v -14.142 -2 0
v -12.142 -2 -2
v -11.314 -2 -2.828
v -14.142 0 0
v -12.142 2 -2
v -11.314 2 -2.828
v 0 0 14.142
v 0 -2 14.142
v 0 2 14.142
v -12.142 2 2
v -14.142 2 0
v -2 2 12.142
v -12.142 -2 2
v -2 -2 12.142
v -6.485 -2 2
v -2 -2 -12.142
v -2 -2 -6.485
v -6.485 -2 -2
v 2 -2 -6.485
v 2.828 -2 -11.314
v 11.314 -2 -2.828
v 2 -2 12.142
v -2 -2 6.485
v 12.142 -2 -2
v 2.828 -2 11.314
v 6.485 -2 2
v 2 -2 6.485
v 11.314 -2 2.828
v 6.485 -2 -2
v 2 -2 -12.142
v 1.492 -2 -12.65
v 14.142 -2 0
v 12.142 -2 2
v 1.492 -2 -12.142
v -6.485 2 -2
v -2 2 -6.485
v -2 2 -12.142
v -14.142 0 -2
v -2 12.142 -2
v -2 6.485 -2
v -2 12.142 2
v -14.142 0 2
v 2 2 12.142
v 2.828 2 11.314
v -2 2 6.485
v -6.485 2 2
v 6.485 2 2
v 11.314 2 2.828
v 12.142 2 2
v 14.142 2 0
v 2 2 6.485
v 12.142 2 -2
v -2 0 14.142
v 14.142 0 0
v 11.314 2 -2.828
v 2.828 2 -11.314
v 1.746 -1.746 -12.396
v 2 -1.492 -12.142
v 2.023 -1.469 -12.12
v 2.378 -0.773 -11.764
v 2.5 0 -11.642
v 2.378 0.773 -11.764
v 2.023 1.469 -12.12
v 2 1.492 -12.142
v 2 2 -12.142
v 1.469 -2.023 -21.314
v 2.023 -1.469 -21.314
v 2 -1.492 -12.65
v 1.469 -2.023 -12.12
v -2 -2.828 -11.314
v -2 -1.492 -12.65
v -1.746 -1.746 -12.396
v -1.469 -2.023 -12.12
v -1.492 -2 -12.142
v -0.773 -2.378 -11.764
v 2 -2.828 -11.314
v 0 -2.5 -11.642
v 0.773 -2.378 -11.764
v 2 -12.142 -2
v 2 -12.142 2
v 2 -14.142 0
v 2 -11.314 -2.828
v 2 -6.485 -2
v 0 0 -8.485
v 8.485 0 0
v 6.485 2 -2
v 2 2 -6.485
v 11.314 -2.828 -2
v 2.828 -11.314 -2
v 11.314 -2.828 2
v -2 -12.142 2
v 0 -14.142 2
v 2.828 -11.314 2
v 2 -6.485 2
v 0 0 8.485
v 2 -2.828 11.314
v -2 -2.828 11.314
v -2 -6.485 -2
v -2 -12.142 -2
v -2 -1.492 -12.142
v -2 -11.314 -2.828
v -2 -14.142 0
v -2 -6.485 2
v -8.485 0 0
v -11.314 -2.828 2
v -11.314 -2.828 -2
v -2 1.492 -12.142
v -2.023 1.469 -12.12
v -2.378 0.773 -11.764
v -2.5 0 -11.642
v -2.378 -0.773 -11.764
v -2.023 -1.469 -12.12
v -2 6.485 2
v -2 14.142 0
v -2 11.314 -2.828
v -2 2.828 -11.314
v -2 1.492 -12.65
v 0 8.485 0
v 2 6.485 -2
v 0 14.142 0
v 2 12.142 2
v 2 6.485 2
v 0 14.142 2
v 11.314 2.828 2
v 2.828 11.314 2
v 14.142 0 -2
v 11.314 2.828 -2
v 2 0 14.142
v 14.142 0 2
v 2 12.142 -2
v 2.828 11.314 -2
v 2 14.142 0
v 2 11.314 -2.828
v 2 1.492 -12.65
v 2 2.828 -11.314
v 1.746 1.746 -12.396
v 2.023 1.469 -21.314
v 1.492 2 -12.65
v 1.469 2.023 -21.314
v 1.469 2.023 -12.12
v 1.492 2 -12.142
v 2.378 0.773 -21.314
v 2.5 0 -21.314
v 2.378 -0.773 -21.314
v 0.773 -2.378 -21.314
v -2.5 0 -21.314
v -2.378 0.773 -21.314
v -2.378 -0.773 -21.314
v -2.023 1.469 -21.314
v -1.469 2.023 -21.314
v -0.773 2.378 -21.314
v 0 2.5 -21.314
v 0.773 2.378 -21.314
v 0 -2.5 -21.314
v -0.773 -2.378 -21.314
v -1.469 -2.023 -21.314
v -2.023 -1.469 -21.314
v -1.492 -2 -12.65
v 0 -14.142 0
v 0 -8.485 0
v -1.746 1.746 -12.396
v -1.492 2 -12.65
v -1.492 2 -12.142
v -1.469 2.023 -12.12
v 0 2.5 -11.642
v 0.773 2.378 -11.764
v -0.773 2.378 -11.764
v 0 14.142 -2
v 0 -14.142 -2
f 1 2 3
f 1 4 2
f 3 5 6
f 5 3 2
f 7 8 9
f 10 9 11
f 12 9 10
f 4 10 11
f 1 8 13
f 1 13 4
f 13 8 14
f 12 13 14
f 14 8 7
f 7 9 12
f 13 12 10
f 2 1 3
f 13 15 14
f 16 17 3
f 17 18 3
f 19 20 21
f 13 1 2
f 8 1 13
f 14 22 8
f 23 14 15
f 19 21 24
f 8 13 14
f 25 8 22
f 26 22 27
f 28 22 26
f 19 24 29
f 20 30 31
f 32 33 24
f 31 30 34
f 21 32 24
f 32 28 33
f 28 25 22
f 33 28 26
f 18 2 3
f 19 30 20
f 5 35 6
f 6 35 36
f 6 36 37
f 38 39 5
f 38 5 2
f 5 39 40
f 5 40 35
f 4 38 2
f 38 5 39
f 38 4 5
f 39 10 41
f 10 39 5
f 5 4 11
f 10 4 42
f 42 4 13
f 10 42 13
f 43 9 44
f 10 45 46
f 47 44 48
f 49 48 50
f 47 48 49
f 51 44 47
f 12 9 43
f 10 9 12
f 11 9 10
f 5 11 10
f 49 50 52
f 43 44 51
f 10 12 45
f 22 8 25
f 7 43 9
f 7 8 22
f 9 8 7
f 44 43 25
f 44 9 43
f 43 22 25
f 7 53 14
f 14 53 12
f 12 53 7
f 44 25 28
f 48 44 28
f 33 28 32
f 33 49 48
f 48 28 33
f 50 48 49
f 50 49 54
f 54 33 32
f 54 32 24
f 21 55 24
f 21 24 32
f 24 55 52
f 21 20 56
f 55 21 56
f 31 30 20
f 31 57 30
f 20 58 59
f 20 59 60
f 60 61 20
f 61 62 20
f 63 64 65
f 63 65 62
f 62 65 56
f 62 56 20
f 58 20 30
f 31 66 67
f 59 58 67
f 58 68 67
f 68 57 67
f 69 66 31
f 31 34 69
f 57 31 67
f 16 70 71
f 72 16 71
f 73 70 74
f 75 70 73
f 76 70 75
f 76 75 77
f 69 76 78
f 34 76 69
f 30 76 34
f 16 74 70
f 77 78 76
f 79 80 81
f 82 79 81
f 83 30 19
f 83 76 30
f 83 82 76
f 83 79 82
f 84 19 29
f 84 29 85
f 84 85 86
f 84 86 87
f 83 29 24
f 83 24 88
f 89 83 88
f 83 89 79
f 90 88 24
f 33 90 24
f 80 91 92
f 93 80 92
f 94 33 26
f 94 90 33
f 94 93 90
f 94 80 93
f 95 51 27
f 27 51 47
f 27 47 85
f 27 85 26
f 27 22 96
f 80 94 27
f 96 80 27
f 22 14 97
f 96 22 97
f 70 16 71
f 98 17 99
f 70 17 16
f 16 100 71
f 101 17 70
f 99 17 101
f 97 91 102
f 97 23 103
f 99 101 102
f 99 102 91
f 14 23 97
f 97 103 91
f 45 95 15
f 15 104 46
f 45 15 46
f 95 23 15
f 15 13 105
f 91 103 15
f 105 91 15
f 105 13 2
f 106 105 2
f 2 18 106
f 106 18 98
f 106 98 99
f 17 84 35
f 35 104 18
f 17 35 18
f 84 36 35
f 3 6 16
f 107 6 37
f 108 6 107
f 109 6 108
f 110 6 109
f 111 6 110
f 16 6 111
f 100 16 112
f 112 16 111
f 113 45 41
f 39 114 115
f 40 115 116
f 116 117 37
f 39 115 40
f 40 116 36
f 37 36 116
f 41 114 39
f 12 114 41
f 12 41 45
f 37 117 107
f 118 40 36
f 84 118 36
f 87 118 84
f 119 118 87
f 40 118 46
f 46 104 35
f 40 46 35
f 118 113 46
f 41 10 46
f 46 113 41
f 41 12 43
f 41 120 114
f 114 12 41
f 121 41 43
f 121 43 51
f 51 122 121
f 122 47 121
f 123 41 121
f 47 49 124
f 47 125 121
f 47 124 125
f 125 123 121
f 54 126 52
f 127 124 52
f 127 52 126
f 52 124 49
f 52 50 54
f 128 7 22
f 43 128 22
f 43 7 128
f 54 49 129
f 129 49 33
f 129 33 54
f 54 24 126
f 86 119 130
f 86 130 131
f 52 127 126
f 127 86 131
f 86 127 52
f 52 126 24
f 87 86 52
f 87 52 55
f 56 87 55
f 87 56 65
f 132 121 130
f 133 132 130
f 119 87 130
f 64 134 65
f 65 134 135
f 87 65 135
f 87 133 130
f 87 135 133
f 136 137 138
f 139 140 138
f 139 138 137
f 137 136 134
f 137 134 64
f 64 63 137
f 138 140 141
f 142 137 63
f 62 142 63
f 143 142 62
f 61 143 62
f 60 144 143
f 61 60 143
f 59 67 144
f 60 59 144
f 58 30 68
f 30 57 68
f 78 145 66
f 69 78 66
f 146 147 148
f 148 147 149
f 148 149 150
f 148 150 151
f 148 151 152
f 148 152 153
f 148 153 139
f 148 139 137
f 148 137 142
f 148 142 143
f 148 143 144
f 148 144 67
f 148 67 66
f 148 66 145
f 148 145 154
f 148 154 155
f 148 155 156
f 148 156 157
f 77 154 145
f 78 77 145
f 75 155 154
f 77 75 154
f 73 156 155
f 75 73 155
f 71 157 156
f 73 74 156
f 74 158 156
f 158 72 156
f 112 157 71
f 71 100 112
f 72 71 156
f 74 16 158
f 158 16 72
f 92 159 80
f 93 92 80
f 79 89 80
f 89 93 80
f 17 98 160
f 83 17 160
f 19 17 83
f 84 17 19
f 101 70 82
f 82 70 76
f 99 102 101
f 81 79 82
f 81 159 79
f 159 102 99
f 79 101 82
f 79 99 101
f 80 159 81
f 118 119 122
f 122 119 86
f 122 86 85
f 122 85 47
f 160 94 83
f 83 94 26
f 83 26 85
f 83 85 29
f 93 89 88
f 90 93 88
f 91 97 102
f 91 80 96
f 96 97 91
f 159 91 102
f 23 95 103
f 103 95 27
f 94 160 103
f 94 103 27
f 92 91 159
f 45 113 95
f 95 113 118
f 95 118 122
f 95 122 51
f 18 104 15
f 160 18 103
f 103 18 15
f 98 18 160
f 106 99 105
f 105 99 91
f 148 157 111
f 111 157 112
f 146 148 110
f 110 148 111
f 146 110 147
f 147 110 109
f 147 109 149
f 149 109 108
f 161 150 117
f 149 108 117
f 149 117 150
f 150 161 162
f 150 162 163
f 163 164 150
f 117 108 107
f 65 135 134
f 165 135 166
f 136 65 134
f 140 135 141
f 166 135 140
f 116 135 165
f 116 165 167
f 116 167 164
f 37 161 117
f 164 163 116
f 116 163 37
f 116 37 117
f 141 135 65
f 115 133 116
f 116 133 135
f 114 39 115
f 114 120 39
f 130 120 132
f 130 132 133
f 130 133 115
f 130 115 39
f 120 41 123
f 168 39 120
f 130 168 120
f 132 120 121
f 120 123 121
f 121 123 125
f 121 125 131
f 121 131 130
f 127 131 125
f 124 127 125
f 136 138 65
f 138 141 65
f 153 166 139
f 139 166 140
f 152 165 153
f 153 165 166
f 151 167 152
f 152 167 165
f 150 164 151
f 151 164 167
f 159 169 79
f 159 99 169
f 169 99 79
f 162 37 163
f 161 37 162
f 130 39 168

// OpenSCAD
sqrt2 = 1.41421;
W = 4;
L = 20;

module diamond() {
    translate([0, -sqrt2*L/2, -W/2])
        rotate([0, 0, 45])
            cube([L, W, W]);
    translate([-sqrt2*L/2 + W*sqrt2/2, -W*sqrt2/2, -W/2])
        rotate([0, 0, 45])
            cube([L, W, W]);
    translate([-sqrt2*L/2, 0, -W/2])
        rotate([0, 0, -45])
            cube([L, W, W]);
    translate([-W*sqrt2/2, sqrt2*L/2 - W*sqrt2/2, -W/2])
        rotate([0, 0, -45])
            cube([L, W, W]);
}

diamond();
rotate([90, 0, 0]) diamond();
rotate([0, 90, 0]) diamond();

// pedestal height and diameter
Ph = 10;
Pd = 5;

translate([0, 0, -Ph - L*sqrt2/2 + W*sqrt2/2])
    cylinder(h=Ph, d=Pd, $fn=20);
